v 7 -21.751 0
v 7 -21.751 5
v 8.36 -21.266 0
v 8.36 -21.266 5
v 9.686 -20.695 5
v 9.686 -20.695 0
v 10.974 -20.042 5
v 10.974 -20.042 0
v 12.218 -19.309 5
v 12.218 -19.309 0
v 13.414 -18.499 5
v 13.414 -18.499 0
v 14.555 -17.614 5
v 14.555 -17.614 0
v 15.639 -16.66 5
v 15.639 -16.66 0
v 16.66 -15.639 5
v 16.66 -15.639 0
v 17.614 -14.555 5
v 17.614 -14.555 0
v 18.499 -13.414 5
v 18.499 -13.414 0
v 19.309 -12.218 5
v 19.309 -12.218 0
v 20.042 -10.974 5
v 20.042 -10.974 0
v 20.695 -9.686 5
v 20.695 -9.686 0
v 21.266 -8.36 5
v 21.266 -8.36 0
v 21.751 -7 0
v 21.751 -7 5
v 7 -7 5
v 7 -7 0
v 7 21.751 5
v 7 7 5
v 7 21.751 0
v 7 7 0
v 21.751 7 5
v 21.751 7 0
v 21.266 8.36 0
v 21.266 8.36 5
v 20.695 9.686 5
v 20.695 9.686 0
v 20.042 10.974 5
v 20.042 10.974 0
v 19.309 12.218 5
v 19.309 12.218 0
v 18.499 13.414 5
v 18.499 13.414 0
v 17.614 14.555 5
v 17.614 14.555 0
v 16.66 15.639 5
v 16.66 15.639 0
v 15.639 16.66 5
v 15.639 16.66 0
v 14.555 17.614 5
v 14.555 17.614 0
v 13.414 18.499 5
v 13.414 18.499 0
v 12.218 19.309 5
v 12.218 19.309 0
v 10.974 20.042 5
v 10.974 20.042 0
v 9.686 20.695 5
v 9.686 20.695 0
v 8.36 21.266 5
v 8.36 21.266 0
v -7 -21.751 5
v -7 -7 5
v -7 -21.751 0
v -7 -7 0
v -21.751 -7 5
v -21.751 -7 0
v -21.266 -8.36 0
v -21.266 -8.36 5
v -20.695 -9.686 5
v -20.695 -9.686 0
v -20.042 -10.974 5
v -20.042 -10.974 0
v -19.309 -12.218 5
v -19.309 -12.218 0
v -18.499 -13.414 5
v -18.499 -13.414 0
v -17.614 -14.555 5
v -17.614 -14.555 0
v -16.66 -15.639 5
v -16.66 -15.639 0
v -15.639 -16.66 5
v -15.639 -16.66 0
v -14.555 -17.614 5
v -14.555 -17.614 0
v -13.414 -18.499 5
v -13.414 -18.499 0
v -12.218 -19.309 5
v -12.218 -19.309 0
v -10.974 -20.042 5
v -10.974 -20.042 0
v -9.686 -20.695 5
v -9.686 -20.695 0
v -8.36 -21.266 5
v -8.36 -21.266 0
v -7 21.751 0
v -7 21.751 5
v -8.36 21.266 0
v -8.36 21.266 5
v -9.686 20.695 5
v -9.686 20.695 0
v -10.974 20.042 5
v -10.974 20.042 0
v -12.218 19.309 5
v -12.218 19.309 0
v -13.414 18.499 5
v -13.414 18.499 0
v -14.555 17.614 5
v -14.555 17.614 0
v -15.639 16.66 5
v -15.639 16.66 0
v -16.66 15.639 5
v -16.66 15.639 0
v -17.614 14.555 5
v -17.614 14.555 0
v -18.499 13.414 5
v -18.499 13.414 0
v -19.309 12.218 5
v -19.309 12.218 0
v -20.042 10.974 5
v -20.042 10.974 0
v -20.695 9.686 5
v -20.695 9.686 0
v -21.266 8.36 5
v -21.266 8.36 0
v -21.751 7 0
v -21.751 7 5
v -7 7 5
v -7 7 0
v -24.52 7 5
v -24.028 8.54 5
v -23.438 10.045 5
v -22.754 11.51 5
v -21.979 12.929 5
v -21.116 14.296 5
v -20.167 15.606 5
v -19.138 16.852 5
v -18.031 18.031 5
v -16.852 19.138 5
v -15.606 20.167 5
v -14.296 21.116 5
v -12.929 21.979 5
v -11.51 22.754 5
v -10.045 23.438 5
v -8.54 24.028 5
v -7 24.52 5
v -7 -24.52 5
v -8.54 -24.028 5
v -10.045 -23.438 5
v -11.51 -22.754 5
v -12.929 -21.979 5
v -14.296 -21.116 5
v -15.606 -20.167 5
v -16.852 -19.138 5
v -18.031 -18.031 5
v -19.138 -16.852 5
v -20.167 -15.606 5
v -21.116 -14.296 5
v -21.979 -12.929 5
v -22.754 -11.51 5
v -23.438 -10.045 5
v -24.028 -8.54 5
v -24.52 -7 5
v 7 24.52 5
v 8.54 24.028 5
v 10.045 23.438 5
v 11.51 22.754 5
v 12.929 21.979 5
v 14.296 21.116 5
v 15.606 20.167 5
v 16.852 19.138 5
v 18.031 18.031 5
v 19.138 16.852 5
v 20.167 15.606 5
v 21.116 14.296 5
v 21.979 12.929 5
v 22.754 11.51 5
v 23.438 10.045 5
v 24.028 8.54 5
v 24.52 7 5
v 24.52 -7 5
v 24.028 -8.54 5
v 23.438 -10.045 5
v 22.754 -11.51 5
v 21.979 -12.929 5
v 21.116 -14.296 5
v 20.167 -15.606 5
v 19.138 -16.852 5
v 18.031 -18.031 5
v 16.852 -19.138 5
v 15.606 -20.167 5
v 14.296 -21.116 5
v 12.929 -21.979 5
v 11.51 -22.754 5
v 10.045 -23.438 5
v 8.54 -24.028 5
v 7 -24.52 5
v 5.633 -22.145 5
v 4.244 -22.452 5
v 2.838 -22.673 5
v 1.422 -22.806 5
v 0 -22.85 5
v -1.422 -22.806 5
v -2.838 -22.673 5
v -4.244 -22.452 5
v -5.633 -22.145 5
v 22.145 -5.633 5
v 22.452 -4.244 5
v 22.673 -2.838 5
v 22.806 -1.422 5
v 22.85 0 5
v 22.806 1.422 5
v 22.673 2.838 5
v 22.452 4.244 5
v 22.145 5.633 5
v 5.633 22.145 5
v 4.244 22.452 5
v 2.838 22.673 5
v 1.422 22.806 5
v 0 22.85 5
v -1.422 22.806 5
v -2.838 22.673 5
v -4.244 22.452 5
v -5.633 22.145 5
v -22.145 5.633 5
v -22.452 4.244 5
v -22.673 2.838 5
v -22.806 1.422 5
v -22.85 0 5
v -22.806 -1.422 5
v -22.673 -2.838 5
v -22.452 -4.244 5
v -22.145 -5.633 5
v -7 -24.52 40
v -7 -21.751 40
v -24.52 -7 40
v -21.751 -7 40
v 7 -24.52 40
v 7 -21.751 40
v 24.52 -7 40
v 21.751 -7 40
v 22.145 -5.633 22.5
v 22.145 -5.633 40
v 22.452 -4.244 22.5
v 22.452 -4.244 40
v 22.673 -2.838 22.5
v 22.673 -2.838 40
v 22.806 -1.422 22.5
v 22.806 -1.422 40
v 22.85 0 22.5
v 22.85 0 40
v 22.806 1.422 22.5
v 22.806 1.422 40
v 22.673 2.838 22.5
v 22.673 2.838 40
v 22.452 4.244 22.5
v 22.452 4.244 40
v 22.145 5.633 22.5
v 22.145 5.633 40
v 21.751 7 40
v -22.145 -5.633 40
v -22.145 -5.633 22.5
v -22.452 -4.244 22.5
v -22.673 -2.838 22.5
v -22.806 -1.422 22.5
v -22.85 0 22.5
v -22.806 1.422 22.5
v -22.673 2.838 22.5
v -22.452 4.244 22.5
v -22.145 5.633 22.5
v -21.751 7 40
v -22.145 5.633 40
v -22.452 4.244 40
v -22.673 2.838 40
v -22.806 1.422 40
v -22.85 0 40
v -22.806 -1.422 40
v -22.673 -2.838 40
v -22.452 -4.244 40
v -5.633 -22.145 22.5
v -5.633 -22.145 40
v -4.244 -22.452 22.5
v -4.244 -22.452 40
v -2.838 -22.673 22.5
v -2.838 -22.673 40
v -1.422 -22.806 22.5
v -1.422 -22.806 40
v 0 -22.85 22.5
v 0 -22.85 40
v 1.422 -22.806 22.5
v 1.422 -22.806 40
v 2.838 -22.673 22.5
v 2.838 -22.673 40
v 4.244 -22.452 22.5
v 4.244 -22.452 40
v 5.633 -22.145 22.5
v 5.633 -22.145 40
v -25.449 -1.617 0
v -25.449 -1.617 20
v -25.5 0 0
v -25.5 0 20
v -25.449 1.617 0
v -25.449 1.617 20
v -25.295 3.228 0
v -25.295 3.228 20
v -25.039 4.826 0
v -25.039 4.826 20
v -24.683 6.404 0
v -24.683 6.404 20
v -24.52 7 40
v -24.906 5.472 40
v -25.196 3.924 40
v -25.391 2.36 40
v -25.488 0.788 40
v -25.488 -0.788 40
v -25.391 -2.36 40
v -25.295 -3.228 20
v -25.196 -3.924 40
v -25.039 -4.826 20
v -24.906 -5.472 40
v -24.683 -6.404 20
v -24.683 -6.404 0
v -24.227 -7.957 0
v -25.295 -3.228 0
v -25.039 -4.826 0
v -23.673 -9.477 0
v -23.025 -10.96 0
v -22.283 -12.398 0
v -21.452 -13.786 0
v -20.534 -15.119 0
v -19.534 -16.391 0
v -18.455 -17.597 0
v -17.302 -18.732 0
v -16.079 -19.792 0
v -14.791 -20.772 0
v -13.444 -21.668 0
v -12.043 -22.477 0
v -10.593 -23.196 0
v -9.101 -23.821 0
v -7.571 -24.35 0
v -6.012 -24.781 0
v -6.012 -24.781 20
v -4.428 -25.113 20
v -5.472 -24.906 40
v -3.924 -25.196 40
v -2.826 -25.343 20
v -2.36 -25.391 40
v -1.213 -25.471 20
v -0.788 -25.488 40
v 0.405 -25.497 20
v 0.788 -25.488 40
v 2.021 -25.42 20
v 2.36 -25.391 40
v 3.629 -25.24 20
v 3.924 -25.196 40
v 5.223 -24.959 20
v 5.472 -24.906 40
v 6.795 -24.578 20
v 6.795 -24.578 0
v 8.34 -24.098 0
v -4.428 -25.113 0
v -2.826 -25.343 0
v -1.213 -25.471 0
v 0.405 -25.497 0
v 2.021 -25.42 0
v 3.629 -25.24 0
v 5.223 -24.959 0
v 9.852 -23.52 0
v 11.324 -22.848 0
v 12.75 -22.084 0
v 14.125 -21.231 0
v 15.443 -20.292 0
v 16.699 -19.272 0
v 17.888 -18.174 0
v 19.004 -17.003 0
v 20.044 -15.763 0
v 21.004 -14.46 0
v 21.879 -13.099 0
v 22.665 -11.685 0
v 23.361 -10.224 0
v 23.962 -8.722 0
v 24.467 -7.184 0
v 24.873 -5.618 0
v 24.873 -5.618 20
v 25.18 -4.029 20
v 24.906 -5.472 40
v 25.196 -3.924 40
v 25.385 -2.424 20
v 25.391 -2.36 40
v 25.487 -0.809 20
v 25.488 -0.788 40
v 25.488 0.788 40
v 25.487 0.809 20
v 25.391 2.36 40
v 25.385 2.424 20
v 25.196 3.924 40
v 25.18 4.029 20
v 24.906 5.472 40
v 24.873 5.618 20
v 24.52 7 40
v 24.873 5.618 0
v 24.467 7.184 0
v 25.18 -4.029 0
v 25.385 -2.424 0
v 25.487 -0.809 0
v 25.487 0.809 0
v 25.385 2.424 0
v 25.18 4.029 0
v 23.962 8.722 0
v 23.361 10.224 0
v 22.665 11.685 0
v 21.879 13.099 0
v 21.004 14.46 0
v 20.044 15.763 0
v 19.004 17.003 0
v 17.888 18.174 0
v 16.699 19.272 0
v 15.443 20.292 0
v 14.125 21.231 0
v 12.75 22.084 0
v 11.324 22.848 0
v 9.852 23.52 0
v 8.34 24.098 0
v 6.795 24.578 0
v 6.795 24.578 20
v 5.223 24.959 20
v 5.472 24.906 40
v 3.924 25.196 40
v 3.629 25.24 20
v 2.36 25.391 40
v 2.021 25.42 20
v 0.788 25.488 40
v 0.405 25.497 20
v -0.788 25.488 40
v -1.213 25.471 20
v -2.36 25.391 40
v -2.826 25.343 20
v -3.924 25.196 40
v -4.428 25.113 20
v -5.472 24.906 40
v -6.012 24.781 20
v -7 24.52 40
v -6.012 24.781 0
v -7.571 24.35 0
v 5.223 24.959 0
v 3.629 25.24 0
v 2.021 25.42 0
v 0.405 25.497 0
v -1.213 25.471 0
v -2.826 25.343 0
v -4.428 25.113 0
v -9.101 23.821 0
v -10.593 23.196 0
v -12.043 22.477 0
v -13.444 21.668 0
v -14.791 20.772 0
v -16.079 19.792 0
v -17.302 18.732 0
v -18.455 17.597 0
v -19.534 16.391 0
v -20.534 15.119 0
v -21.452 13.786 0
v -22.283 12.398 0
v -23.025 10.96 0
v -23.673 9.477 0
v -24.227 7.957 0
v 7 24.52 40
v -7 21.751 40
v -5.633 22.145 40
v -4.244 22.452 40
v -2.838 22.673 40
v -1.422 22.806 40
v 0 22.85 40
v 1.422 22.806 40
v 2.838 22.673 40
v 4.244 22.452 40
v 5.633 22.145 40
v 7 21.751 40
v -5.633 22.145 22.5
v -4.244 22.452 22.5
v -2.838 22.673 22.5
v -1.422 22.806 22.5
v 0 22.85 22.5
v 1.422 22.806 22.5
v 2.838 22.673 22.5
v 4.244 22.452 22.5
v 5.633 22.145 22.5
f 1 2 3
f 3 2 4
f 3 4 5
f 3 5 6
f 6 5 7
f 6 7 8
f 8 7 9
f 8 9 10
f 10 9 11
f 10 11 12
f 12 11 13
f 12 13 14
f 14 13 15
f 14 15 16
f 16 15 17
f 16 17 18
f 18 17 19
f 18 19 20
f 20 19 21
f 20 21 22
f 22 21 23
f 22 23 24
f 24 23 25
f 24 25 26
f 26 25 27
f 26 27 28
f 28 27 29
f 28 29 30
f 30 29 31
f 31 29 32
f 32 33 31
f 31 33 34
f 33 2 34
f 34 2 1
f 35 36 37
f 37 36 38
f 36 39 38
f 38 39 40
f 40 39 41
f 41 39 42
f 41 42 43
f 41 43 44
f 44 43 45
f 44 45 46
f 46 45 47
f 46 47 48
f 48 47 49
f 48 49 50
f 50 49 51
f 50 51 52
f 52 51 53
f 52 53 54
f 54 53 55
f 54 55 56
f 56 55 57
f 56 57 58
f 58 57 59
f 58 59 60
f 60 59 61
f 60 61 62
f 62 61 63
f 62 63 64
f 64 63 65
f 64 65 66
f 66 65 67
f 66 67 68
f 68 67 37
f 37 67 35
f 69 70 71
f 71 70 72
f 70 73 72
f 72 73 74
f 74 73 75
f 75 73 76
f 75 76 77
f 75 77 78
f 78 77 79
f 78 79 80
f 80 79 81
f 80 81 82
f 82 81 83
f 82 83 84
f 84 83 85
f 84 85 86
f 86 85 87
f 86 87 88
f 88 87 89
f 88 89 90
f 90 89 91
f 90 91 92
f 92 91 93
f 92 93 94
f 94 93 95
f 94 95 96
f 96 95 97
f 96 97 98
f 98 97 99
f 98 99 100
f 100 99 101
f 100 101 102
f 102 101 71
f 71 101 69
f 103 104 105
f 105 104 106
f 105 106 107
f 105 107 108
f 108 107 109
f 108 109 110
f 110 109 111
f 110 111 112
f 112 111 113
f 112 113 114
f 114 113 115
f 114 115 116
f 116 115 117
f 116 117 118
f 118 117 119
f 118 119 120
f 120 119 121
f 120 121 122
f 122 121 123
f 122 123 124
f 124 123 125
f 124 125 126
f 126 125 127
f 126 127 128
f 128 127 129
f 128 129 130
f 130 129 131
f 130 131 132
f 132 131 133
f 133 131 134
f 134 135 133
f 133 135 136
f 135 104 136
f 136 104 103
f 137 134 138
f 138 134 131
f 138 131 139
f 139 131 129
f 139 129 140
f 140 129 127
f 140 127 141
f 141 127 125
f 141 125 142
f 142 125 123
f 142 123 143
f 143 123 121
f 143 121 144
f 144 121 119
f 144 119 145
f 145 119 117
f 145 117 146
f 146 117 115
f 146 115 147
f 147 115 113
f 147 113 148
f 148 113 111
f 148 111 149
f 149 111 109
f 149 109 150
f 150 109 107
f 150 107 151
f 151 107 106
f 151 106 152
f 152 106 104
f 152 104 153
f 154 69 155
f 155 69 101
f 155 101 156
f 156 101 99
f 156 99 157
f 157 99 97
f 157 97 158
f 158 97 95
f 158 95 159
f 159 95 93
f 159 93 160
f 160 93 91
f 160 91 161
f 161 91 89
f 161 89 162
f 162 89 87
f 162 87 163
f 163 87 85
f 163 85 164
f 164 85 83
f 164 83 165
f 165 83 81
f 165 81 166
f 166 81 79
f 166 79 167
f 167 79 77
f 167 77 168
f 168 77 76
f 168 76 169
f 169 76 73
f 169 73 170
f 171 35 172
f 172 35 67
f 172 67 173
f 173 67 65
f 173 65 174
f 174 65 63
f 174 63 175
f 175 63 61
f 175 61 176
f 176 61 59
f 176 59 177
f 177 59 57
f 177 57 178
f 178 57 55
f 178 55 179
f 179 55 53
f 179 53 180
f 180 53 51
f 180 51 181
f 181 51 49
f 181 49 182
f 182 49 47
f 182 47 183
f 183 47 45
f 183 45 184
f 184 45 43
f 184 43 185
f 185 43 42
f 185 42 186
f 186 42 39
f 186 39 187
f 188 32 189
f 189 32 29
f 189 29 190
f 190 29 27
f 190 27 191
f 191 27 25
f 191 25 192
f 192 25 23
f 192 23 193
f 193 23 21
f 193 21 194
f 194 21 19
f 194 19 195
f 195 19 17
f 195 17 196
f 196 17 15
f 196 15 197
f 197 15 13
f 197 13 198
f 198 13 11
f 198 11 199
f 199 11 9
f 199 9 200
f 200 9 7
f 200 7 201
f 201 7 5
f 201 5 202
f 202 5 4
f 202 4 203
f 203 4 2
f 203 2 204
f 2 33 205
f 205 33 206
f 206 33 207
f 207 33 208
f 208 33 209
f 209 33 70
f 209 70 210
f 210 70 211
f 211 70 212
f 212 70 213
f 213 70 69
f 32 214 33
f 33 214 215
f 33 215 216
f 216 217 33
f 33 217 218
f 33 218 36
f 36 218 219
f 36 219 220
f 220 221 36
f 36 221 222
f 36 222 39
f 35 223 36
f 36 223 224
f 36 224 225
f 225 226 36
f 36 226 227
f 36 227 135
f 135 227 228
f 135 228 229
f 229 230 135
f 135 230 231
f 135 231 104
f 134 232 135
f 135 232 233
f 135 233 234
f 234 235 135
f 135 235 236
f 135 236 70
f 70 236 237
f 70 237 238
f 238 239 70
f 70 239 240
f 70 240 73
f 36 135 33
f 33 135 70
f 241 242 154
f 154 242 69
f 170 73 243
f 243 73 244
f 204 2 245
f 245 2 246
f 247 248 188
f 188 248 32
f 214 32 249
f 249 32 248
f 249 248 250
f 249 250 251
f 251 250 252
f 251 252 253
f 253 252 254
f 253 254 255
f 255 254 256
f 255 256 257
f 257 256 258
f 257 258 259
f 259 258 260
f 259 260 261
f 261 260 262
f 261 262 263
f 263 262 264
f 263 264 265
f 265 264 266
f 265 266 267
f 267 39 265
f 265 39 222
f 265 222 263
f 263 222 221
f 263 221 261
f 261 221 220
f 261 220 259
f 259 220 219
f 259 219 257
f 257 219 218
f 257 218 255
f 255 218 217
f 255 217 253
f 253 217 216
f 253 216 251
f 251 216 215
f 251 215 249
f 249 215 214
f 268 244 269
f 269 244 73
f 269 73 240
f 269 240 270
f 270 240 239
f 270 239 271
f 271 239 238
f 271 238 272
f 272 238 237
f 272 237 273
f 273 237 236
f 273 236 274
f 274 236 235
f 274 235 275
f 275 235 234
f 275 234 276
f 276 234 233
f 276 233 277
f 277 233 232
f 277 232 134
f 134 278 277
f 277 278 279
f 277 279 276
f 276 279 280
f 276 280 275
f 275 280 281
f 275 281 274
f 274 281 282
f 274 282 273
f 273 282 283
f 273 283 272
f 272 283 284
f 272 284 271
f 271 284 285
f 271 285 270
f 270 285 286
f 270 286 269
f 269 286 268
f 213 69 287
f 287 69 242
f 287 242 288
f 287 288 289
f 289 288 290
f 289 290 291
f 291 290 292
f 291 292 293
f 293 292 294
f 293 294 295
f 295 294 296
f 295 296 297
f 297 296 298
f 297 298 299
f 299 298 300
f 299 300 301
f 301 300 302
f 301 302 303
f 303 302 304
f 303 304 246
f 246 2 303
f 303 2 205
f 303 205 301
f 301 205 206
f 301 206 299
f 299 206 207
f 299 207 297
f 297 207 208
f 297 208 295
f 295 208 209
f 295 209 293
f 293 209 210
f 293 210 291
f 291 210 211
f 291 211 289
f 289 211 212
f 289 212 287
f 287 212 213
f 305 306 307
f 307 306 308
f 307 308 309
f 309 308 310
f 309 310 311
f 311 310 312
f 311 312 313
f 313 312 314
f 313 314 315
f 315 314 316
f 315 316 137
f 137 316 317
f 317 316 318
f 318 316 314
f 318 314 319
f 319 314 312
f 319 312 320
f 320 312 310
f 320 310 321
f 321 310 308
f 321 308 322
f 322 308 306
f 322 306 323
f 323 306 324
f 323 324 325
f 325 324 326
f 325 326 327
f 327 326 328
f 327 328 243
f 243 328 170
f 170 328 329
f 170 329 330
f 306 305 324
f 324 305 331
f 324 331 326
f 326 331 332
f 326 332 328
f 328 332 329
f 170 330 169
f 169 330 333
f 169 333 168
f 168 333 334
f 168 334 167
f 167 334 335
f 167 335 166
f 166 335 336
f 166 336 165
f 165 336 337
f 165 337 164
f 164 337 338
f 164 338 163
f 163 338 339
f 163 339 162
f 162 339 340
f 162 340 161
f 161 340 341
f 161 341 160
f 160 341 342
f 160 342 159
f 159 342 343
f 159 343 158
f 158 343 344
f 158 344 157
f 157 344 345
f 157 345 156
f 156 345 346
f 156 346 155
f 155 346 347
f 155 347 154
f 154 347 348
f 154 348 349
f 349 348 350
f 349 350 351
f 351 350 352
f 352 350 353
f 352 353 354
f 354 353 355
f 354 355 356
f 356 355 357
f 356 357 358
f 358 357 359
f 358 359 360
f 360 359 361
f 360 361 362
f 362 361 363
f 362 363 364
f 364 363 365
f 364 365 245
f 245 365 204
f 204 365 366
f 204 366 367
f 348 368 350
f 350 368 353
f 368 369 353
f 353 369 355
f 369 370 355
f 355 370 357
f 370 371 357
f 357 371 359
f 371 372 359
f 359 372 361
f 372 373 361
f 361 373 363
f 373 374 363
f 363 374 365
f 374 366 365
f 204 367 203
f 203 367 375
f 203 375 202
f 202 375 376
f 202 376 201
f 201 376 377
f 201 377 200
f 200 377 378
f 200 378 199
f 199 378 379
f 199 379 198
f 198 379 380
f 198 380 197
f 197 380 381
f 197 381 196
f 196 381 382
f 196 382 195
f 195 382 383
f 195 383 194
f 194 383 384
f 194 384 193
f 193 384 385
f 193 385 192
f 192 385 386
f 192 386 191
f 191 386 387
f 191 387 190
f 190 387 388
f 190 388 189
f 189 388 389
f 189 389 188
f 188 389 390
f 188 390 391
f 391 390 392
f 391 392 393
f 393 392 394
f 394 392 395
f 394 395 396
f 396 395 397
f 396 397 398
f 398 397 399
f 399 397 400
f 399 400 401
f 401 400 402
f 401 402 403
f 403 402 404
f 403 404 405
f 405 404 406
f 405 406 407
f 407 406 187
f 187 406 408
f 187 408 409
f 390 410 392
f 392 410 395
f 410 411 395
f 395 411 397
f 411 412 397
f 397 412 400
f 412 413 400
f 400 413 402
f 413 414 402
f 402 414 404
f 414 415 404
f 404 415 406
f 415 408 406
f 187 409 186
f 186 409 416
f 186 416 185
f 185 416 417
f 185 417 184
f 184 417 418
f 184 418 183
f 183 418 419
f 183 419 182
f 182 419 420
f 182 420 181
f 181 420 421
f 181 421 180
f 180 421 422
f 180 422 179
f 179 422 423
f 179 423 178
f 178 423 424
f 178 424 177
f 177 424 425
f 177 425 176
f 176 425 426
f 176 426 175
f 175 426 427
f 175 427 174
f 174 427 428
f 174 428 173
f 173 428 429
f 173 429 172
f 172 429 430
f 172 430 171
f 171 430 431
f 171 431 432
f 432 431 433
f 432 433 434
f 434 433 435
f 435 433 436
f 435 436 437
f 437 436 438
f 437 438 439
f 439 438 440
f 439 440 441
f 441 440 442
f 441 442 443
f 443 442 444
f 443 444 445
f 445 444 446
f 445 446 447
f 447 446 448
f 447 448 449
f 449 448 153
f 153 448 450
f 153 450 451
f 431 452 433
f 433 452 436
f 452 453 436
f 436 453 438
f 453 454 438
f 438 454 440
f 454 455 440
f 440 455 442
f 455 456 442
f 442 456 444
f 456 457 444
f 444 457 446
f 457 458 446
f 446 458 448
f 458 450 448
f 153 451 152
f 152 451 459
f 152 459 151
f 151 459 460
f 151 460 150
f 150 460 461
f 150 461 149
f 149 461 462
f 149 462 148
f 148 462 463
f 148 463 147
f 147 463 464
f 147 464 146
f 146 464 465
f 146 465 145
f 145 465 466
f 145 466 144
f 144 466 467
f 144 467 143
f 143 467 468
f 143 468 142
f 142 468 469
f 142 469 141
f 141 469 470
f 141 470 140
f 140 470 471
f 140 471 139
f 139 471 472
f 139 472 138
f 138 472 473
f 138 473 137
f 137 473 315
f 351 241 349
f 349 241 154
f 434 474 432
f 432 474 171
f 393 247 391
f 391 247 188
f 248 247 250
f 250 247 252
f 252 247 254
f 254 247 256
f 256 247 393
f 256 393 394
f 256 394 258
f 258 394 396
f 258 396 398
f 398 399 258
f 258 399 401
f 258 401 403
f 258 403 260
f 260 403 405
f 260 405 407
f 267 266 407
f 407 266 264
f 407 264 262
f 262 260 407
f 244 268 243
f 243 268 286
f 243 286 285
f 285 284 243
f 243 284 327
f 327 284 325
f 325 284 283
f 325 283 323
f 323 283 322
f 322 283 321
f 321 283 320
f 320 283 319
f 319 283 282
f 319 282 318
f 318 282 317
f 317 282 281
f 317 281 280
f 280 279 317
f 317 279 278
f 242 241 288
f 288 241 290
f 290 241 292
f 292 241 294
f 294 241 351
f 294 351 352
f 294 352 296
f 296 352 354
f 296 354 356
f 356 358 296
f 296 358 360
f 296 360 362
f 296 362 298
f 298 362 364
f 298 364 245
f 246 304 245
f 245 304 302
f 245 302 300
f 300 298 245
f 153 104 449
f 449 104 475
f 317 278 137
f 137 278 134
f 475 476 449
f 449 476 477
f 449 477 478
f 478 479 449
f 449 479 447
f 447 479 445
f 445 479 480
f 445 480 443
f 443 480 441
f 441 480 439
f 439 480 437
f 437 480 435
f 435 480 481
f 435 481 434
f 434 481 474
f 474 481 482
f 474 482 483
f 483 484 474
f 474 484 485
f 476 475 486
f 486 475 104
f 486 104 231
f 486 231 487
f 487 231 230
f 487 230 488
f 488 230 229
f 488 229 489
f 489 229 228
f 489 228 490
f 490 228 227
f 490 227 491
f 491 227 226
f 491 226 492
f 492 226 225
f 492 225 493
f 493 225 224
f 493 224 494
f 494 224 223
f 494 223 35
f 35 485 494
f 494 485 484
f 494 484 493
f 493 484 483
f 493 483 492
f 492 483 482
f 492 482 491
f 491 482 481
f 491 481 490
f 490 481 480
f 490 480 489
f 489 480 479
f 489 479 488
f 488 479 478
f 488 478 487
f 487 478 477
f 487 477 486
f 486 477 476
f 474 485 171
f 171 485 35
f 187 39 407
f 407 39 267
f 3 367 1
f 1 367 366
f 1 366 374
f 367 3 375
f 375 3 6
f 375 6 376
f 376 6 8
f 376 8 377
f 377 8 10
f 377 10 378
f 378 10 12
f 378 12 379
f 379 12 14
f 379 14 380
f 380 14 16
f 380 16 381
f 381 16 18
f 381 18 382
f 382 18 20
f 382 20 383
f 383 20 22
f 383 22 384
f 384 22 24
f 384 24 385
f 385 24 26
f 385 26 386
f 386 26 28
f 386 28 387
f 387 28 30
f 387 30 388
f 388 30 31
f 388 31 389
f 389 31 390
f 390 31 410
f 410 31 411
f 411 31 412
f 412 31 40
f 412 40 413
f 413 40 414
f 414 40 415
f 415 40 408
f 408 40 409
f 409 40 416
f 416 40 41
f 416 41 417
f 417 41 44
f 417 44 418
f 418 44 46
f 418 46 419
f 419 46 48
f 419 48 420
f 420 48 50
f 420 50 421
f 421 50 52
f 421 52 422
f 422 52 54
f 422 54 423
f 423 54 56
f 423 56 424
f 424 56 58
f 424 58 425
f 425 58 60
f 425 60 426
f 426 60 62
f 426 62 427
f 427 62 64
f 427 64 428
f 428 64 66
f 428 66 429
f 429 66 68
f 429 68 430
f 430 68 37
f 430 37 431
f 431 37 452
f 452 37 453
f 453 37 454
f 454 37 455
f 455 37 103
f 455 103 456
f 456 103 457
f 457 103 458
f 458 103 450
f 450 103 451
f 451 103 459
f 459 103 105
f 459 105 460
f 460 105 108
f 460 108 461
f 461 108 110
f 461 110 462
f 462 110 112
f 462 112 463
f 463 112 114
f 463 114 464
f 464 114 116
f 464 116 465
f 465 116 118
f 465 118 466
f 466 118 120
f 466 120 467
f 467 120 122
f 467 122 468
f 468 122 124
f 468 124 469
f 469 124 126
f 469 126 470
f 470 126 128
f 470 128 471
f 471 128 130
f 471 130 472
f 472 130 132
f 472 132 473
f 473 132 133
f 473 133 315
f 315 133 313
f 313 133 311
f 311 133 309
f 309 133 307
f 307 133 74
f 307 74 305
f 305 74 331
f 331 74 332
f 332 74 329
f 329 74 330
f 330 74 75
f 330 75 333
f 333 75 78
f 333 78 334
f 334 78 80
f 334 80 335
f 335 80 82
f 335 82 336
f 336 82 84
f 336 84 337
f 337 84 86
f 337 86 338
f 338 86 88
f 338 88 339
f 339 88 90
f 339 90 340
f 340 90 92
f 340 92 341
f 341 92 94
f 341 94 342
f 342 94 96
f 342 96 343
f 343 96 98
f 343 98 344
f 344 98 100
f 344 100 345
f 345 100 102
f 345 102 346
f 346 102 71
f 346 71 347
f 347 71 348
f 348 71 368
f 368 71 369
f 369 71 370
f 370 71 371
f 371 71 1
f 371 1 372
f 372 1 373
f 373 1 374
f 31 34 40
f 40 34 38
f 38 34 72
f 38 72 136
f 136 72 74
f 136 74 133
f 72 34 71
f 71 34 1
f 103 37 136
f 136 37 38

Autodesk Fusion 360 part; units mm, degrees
sketch "スケッチ1" plane through (0, 0, 0) normal (0, 0, 1) x (1, 0, 0)
  circle A0 centre (0, 0) radius 25.5
  dimension "d1" = 51
extrude "押し出し1" add sketch "スケッチ1" along normal blind 40
sketch "スケッチ2" plane through (0, 0, 40) normal (0, 0, 1) x (-1, 0, 0)
  circle A0 centre (0, 0) radius 25.5
  circle A1 centre (0, 0) radius 22.85
  dimension "d4" = 45.7
extrude "押し出し2" cut sketch "スケッチ2" against normal blind 35 contours A1
sketch "スケッチ3" plane through (0, 0, 5) normal (0, 0, 1) x (-1, 0, 0)
  circle A0 centre (0, 0) radius 22.85
  line L0 (7, -7) -> (32, -7)
  line L1 (32, -7) -> (32, -32)
  line L2 (32, -32) -> (7, -32)
  line L3 (7, -32) -> (7, -7)
  line L4 (7, 7) -> (32, 7)
  line L5 (32, 7) -> (32, 32)
  line L6 (32, 32) -> (7, 32)
  line L7 (7, 32) -> (7, 7)
  line L8 (-7, 7) -> (-32, 7)
  line L9 (-32, 7) -> (-32, 32)
  line L10 (-32, 32) -> (-7, 32)
  line L11 (-7, 32) -> (-7, 7)
  line L12 (-7, -7) -> (-32, -7)
  line L13 (-32, -7) -> (-32, -32)
  line L14 (-32, -32) -> (-7, -32)
  line L15 (-7, -32) -> (-7, -7)
  dimension "d7" = 25
  dimension "d8" = 25
  dimension "d9" = 25
  dimension "d10" = 25
  dimension "d11" = 25
  dimension "d12" = 25
  dimension "d13" = 25
  dimension "d14" = 25
extrude "押し出し3" cut sketch "スケッチ3" along normal blind 35 contours A0 L12 L13 L14 L15
extrude "押し出し4" cut sketch "スケッチ3" along normal blind 35 contours A0 L0 L1 L2 L3
extrude "押し出し5" cut sketch "スケッチ3" along normal blind 35 contours A0 L4 L5 L6 L7 | A0 L8 L9 L10 L11
extrude "押し出し6" cut sketch "スケッチ3" against normal blind 5 contours A0 L4 L7 | A0 L0 L3 | A0 L8 L11 | A0 L12 L15
